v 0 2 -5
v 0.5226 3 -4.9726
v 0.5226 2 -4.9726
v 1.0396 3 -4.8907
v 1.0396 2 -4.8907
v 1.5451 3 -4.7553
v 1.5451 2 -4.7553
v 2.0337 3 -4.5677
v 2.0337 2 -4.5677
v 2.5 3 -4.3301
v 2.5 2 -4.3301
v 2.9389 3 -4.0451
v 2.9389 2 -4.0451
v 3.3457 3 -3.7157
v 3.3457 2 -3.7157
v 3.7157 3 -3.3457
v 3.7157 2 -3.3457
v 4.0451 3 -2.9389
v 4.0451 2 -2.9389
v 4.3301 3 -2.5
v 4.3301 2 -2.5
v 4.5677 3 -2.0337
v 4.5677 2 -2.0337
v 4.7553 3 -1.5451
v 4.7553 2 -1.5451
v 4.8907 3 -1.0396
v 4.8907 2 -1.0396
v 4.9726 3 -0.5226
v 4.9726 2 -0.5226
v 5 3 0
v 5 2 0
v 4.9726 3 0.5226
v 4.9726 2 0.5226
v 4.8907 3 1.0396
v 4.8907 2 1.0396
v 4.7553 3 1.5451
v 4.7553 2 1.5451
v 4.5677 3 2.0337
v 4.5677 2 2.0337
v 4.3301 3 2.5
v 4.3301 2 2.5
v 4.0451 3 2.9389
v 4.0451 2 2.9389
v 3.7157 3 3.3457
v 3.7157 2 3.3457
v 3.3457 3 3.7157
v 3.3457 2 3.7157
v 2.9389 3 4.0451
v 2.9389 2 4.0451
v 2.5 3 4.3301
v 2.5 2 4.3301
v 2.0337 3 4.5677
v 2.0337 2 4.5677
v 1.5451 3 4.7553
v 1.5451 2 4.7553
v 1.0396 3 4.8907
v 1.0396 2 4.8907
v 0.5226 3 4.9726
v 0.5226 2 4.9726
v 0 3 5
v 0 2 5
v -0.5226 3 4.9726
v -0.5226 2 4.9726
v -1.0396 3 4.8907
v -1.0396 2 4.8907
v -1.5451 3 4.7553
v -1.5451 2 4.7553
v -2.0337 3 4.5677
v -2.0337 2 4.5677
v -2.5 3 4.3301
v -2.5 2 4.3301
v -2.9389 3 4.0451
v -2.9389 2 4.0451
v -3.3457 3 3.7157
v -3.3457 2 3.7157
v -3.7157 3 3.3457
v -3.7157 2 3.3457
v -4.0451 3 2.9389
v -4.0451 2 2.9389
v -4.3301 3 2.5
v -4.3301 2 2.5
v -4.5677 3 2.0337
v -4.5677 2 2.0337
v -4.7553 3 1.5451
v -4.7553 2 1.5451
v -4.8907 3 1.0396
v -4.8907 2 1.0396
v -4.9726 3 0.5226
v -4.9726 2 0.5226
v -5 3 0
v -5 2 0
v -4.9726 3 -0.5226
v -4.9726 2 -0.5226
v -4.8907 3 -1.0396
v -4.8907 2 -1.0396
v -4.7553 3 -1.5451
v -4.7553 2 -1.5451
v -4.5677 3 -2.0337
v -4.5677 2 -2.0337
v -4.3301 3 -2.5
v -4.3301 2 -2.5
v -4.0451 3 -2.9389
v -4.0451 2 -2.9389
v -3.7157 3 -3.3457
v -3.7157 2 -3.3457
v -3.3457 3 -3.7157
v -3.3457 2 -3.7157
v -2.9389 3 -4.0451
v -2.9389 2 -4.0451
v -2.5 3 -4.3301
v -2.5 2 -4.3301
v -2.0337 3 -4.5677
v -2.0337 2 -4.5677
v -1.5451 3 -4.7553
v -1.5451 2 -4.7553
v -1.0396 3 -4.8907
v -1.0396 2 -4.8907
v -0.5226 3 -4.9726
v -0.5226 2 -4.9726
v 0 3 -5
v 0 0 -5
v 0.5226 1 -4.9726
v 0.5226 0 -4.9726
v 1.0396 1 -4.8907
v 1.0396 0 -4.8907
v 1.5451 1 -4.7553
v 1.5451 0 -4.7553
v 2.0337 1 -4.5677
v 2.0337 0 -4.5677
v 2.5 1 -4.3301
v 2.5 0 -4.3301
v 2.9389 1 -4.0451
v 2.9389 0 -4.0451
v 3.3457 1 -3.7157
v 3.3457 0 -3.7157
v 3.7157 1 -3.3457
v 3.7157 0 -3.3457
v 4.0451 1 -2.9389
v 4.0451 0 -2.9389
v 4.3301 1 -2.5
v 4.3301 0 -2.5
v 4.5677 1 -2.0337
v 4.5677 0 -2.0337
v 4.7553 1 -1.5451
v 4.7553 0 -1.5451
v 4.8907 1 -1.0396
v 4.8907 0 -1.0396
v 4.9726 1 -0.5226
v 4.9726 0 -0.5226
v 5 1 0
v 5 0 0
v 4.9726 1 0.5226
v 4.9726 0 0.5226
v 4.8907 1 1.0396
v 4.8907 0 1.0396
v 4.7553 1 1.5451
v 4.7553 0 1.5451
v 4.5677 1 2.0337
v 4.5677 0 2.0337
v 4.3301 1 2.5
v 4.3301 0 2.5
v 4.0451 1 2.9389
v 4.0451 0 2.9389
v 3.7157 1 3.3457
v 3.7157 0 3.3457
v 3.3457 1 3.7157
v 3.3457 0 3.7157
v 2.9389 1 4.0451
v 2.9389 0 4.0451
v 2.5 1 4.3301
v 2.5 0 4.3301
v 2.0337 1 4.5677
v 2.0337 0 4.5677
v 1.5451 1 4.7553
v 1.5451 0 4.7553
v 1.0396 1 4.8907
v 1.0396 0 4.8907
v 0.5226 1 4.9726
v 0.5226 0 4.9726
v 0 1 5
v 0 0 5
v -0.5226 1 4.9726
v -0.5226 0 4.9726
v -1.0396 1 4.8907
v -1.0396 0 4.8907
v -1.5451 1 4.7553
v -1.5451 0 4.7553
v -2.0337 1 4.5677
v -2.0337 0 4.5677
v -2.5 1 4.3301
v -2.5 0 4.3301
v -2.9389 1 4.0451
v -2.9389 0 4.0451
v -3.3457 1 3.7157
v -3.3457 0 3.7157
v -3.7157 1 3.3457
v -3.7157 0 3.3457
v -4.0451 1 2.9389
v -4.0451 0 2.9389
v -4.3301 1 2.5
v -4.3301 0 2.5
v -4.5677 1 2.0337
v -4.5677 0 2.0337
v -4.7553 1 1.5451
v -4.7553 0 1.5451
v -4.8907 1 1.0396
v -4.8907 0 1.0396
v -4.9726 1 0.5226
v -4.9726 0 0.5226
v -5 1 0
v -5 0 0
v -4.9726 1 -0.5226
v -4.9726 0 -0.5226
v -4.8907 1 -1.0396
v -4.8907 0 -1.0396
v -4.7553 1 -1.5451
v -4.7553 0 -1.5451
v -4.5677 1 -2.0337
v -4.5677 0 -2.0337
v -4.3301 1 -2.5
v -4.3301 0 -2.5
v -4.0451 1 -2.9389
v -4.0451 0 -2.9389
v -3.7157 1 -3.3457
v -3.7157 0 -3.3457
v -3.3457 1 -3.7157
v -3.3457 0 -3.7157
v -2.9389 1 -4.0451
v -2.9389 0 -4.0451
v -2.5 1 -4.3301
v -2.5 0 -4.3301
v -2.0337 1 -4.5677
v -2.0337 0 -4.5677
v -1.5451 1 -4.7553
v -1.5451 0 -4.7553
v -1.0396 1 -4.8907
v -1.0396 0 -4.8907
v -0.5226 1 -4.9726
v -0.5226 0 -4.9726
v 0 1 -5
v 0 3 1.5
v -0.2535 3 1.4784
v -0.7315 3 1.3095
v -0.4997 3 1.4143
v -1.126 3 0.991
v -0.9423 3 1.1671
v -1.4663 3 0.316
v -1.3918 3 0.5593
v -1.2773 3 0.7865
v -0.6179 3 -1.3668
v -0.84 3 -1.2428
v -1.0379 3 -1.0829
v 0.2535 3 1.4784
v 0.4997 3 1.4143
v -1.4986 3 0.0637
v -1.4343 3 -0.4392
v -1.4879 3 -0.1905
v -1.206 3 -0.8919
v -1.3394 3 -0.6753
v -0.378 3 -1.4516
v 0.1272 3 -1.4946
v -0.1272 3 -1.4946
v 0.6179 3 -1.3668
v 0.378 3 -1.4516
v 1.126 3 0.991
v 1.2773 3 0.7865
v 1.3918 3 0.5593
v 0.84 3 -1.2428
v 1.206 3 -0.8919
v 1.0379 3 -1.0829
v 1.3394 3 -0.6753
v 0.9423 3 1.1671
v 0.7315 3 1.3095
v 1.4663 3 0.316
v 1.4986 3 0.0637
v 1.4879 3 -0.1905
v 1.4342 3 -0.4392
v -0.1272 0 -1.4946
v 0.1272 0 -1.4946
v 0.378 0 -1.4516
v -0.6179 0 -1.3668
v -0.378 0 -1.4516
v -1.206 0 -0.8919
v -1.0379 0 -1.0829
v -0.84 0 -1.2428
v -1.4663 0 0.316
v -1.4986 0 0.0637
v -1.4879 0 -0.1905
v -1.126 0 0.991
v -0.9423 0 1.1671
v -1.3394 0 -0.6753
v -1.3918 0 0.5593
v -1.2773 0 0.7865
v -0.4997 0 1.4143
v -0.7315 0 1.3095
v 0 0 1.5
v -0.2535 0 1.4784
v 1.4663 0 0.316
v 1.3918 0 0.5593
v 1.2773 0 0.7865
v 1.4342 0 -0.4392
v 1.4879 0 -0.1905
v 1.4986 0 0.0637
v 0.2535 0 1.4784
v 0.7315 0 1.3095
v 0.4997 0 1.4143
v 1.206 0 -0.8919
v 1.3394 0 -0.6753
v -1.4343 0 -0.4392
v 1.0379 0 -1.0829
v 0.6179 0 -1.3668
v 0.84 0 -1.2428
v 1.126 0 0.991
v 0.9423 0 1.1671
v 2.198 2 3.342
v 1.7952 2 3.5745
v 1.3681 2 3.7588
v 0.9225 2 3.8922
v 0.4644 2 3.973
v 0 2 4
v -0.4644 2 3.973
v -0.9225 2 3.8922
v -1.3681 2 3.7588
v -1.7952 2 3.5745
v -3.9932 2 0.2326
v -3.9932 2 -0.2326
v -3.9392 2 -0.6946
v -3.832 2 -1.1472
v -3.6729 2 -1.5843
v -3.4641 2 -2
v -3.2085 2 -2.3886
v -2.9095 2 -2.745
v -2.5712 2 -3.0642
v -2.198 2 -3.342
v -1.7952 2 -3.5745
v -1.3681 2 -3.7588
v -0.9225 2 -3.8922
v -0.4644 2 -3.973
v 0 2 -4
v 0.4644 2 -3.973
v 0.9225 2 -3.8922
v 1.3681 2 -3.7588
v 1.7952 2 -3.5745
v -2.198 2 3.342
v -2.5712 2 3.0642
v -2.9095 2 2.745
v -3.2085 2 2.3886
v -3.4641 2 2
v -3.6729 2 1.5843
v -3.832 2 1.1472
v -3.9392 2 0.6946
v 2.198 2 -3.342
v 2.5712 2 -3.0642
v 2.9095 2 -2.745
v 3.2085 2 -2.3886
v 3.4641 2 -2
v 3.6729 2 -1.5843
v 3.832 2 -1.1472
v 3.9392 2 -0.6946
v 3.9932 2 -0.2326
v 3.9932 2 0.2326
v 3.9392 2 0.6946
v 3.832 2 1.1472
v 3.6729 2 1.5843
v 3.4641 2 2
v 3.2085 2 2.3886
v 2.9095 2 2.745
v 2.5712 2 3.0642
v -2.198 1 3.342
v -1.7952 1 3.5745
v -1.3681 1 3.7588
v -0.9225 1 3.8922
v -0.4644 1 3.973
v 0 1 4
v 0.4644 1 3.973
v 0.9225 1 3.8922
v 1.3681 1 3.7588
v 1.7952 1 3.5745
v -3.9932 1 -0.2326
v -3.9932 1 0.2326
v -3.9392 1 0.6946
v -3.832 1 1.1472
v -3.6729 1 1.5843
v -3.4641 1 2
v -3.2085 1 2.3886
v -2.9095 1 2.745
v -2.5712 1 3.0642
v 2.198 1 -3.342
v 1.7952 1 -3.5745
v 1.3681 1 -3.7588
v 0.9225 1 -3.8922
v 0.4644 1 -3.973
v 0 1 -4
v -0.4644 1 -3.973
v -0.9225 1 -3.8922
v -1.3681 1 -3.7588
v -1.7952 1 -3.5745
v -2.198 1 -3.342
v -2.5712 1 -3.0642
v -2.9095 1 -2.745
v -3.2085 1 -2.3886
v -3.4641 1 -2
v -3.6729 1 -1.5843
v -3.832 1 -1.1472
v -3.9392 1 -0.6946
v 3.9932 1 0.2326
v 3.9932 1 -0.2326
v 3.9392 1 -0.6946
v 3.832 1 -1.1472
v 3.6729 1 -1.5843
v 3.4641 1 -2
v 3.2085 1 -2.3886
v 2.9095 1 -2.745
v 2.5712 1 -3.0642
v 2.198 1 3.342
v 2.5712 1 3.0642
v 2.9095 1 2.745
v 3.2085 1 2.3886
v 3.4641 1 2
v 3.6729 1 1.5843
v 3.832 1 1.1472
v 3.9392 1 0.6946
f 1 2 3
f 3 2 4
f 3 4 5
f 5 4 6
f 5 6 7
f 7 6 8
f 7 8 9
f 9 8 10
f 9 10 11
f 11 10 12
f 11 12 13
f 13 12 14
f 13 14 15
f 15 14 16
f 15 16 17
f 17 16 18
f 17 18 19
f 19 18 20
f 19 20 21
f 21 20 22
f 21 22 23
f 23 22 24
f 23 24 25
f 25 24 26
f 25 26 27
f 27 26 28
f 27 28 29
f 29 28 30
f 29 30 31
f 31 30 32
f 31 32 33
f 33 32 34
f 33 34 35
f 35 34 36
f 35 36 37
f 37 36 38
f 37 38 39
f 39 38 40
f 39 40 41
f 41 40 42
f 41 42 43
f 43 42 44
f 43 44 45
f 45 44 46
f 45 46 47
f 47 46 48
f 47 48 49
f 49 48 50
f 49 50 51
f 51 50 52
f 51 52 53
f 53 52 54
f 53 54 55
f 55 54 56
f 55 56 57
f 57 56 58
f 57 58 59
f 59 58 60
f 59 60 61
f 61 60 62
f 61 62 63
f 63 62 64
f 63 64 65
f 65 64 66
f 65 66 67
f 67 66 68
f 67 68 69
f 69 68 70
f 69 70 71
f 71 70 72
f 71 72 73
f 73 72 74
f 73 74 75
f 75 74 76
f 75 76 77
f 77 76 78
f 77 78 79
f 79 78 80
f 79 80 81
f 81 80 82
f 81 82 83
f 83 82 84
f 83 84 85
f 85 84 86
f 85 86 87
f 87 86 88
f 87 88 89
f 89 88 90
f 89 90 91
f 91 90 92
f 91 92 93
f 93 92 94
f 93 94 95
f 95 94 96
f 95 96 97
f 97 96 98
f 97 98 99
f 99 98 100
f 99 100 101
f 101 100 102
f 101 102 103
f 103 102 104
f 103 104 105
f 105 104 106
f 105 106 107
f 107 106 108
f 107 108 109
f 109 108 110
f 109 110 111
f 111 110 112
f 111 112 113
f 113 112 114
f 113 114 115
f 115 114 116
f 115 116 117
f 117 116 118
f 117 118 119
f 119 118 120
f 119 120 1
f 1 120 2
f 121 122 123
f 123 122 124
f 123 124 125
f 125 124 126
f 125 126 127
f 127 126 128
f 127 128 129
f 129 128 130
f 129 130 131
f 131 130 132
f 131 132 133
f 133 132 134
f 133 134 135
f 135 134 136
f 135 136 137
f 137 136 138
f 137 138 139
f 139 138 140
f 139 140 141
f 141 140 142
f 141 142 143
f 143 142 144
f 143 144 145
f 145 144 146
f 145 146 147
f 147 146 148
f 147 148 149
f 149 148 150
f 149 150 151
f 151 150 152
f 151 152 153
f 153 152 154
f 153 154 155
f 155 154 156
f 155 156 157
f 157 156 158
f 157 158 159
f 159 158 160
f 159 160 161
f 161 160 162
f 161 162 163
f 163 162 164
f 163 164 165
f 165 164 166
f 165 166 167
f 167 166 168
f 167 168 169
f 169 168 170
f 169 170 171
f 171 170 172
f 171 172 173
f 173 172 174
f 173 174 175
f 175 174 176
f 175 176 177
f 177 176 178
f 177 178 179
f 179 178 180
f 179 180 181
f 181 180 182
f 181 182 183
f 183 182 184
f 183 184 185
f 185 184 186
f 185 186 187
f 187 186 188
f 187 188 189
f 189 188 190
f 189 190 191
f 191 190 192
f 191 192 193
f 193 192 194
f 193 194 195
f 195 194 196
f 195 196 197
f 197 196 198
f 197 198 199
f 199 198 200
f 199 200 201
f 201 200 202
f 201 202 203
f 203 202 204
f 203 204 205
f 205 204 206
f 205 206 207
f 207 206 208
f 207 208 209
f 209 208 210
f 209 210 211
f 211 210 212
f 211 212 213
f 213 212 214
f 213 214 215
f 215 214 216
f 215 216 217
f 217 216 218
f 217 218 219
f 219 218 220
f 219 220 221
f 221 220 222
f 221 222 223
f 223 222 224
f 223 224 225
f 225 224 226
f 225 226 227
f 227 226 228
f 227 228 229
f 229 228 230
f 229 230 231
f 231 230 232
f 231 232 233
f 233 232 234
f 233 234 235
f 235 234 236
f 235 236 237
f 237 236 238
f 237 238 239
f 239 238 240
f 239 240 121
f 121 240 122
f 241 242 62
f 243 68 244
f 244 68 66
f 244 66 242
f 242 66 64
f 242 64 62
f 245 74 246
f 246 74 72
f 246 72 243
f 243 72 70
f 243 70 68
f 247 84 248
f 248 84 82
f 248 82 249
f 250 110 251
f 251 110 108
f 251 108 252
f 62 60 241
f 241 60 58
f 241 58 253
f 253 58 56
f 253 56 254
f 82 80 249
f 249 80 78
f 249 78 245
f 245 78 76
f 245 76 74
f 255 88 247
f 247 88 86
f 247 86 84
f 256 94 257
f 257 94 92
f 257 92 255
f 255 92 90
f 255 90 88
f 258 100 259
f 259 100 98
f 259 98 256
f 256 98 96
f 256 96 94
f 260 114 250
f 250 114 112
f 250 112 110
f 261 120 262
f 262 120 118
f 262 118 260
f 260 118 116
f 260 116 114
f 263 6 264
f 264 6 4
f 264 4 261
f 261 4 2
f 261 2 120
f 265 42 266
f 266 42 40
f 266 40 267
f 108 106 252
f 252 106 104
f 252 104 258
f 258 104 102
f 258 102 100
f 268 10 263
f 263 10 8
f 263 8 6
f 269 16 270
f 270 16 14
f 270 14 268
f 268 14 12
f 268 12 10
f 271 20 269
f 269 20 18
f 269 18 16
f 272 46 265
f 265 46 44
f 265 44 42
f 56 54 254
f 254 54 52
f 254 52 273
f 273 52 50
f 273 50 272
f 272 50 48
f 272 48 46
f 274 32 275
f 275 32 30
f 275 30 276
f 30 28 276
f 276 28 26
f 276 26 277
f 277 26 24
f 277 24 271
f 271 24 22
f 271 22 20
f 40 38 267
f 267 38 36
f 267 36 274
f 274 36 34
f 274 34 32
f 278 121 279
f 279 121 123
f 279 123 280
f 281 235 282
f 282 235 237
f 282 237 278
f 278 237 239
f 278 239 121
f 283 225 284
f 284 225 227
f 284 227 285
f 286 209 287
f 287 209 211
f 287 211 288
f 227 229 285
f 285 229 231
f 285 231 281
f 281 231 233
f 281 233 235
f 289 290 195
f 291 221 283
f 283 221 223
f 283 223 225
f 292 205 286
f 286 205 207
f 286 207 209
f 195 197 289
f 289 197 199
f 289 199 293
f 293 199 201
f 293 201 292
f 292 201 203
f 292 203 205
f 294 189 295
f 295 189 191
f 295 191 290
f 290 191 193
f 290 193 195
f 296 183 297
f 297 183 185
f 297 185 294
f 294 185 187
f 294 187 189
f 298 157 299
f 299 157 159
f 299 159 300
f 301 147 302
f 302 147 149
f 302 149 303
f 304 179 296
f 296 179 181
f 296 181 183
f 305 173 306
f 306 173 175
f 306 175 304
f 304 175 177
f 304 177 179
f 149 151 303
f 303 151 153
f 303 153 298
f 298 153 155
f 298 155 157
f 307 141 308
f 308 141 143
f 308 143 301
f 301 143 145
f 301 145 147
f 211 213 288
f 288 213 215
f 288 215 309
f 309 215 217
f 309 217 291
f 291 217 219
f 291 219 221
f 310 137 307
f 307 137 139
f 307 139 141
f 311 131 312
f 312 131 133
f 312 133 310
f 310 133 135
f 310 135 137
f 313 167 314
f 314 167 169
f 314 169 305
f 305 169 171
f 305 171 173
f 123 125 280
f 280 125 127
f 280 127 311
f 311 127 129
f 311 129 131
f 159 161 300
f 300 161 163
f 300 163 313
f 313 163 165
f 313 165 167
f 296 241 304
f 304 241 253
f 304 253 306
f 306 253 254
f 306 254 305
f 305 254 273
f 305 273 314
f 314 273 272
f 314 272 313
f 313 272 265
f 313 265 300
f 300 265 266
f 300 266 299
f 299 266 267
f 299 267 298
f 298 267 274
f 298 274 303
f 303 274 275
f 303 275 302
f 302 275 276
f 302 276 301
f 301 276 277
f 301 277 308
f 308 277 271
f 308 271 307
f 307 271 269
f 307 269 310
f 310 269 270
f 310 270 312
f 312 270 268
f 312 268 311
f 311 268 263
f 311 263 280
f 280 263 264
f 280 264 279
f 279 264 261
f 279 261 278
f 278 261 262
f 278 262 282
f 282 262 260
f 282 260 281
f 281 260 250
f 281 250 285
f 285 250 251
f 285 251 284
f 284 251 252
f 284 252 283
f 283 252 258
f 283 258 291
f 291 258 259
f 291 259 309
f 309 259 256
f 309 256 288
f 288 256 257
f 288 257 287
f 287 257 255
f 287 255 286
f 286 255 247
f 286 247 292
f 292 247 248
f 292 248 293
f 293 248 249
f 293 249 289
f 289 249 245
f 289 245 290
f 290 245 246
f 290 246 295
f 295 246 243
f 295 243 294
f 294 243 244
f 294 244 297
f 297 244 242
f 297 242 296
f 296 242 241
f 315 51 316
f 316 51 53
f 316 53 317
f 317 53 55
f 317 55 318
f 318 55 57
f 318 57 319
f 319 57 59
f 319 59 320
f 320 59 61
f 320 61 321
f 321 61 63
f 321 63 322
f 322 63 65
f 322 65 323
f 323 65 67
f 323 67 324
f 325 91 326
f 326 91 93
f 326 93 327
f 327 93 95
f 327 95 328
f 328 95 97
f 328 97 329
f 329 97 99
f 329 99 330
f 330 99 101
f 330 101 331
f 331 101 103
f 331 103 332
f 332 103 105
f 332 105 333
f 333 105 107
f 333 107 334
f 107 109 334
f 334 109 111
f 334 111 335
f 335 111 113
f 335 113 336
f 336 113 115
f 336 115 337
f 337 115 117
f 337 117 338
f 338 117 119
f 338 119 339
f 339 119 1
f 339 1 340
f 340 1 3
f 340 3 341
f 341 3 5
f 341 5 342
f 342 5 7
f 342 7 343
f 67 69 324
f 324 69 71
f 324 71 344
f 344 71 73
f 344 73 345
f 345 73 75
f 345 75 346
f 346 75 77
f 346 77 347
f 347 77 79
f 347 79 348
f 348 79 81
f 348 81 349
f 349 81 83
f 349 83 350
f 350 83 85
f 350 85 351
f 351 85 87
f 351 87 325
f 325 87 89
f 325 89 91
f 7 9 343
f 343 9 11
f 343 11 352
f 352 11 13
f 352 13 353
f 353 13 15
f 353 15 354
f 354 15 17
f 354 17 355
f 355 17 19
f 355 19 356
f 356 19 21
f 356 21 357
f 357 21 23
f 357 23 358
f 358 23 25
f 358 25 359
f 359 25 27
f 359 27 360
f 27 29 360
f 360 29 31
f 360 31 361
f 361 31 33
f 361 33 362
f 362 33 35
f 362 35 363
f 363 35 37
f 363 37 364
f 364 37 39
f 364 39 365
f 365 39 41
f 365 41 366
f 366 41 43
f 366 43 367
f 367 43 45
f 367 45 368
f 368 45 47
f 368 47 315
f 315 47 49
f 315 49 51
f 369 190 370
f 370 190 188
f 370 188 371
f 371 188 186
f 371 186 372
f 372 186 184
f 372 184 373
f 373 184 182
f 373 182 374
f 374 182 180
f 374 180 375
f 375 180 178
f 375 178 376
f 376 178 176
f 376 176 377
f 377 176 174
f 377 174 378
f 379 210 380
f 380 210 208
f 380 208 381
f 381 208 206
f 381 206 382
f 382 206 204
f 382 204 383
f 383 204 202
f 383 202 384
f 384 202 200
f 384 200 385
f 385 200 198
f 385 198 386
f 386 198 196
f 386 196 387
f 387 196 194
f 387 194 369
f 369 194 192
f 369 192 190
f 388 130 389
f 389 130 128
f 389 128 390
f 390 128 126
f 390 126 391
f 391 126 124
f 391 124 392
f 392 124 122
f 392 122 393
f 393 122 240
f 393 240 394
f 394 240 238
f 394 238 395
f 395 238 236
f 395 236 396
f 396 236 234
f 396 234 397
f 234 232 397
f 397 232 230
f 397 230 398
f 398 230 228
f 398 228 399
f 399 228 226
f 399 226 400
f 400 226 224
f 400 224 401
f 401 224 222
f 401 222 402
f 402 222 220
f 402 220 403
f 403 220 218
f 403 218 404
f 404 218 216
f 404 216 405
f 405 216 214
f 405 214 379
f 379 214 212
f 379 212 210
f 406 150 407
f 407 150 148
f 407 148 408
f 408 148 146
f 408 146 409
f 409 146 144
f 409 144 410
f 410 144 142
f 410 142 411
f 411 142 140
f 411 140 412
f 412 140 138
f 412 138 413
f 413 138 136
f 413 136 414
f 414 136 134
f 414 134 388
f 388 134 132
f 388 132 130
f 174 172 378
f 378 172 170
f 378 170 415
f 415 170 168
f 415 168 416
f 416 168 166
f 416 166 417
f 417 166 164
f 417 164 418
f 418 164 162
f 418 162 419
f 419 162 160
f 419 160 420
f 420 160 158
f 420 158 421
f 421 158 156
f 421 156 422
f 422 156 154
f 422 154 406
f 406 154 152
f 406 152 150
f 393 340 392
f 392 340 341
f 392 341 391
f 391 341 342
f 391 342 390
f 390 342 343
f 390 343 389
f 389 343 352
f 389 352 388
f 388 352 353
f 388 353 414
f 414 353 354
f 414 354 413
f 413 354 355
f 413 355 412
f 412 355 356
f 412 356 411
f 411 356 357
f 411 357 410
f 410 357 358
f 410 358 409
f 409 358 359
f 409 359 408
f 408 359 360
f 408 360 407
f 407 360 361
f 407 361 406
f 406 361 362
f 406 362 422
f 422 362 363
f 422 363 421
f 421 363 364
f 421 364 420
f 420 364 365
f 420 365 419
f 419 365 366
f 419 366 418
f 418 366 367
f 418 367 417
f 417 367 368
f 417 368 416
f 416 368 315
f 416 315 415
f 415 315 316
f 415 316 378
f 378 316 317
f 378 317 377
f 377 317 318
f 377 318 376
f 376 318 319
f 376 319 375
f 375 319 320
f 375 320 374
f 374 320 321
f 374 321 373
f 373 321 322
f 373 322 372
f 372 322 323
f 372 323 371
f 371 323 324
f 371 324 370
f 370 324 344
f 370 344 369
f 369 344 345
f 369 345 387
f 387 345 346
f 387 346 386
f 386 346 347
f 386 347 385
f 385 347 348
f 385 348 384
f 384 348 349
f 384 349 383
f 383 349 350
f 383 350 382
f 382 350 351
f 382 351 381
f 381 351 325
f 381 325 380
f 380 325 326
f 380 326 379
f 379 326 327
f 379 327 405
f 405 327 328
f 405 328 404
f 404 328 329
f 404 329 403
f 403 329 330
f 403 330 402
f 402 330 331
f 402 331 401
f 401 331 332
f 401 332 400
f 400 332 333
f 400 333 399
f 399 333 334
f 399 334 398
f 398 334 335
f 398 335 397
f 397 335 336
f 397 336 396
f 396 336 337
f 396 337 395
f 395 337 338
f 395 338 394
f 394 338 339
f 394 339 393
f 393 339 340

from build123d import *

# Parameters (mm, degrees)
SKETCH_1_R          = 5
EXTRUDE_1_DEPTH     = 3
SKETCH_2_R          = 1.5
CUT_EXTRUDE_1_DEPTH = 11
SKETCH_3_R          = 5
SKETCH_3_R_2        = 4
CUT_EXTRUDE_3_DEPTH = 0.5


with BuildPart() as part:
    # 草图1 → 凸台-拉伸1 (new body)
    with BuildSketch(Plane(origin=(0, 0, 0), x_dir=(1, 0, 0), z_dir=(0, 1, 0))):
        Circle(SKETCH_1_R)
    extrude(amount=EXTRUDE_1_DEPTH)

    # 草图2 → 切除-拉伸1 (cut)
    with BuildSketch(Plane(origin=(0, 3, 0), x_dir=(1, 0, 0), z_dir=(0, 1, 0))):
        Circle(SKETCH_2_R)
    extrude(amount=-CUT_EXTRUDE_1_DEPTH, mode=Mode.SUBTRACT)

    # 草图3 → 切除-拉伸3 (cut, symmetric)
    with BuildSketch(Plane(origin=(0, 1.5, 0), x_dir=(-1, 0, 0), z_dir=(0, -1, 0))):
        Circle(SKETCH_3_R)
        Circle(SKETCH_3_R_2, mode=Mode.SUBTRACT)
    extrude(amount=CUT_EXTRUDE_3_DEPTH, both=True, mode=Mode.SUBTRACT)


solid = part.part
